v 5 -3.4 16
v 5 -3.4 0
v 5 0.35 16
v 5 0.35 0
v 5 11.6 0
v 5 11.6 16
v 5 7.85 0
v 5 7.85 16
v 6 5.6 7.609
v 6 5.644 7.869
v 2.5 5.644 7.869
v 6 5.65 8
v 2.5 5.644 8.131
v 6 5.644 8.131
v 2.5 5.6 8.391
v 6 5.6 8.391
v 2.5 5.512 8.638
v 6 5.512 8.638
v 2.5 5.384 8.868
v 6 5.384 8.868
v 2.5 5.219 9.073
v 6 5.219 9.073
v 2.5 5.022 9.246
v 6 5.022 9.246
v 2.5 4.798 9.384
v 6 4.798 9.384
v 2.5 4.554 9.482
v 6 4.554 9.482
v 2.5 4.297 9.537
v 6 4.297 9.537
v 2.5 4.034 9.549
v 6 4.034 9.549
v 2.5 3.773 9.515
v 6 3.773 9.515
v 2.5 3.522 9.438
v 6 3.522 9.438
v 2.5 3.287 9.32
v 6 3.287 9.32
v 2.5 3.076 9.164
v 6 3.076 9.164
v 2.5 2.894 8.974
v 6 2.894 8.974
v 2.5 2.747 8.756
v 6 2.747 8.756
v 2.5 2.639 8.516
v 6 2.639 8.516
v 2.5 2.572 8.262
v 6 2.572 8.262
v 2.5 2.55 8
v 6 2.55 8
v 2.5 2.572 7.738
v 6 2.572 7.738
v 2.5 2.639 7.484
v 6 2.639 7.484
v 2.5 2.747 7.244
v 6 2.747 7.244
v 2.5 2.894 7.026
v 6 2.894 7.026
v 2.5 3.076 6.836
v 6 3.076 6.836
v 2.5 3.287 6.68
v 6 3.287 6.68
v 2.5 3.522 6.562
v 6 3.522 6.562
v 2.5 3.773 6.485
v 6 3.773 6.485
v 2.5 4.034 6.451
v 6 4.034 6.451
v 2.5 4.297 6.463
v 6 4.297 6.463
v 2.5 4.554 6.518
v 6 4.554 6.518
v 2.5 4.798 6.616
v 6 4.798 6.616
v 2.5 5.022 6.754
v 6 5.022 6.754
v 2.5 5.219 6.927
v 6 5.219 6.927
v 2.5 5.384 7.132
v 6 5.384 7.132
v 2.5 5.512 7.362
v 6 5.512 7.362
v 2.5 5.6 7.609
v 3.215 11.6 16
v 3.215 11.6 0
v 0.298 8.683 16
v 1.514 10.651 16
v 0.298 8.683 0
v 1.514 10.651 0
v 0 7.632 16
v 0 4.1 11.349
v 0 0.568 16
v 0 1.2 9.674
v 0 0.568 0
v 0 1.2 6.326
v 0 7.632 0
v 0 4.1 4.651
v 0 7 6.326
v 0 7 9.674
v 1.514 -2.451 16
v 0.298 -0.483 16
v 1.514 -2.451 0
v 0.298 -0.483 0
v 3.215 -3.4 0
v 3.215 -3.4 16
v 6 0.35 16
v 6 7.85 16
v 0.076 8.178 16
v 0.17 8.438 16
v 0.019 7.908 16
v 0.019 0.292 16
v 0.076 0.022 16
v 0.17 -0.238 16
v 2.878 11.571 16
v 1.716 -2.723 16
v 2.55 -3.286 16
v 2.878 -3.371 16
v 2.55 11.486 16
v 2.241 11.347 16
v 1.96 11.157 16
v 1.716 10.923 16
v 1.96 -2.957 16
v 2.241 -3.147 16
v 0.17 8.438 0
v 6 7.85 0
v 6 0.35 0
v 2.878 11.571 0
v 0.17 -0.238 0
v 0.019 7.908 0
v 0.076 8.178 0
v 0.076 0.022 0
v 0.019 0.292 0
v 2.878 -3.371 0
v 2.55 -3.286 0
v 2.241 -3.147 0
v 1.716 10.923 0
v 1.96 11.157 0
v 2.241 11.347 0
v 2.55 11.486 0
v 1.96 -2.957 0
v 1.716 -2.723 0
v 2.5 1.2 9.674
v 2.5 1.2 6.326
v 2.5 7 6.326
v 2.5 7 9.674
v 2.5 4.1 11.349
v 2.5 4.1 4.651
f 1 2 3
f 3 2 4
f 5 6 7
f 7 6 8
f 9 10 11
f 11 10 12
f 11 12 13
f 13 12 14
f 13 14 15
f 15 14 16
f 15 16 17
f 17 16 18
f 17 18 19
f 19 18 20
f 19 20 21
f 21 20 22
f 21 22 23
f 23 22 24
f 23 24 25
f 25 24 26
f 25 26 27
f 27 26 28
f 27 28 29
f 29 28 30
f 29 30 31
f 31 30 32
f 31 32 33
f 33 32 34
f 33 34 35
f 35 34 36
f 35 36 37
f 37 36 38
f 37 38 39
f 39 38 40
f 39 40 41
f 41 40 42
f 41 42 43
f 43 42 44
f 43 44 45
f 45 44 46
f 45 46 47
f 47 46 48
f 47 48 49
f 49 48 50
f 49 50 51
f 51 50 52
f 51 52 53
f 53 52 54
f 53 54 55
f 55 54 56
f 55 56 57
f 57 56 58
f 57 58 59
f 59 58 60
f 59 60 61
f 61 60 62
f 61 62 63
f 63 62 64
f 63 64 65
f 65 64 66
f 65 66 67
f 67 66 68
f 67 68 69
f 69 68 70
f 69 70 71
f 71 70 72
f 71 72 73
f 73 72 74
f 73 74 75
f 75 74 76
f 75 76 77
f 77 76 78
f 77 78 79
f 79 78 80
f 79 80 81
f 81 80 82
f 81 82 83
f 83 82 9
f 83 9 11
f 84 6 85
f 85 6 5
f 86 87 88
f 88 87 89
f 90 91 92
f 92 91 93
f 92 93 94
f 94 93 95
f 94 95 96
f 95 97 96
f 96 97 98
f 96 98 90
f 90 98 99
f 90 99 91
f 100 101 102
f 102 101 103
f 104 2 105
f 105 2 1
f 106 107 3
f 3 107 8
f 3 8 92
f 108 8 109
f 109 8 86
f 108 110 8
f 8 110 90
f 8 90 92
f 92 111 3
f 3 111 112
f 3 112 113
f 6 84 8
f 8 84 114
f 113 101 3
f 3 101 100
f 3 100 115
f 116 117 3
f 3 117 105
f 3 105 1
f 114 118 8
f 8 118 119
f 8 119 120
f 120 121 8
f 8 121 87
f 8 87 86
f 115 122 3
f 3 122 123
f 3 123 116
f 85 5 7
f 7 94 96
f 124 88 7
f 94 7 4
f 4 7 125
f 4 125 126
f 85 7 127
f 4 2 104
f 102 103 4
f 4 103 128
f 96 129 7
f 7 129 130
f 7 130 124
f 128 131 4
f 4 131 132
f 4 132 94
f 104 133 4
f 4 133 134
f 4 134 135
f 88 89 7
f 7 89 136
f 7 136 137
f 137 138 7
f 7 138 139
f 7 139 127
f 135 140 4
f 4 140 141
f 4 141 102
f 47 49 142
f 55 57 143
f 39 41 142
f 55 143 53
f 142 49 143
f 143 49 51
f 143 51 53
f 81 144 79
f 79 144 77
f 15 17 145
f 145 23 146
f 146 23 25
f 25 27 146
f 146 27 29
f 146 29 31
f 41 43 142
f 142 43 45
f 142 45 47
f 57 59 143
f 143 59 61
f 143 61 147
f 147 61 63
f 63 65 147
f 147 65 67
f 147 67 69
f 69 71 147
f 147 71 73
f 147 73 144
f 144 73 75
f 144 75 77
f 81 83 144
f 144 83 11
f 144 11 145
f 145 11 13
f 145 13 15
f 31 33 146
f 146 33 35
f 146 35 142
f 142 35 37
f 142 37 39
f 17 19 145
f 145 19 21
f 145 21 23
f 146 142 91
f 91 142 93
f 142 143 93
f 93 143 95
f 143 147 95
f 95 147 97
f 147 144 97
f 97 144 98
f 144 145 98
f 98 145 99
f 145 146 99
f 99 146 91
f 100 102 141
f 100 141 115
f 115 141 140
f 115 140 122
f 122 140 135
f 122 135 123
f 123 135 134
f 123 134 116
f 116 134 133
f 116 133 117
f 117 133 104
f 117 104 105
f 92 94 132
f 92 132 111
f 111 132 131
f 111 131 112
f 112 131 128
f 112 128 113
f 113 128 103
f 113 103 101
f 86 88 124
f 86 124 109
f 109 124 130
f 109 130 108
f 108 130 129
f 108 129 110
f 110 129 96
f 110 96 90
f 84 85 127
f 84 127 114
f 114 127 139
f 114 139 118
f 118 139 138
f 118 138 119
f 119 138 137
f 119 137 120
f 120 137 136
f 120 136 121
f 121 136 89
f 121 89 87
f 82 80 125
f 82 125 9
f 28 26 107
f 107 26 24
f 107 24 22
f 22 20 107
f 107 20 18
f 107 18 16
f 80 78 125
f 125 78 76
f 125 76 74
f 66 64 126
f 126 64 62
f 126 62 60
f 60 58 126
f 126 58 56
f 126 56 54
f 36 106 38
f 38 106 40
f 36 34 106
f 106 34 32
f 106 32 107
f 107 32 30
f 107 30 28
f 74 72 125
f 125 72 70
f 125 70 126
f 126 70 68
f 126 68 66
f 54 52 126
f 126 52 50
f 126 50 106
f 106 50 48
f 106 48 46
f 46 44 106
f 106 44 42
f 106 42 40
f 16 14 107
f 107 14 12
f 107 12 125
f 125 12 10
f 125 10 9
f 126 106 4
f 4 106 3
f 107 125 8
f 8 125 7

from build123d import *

# Parameters (mm, degrees)
SALIENTE_EXTRUIR1_DEPTH = 16
CROQUIS2_R              = 1.55
CORTAR_EXTRUIR1_DEPTH   = 5
CORTAR_EXTRUIR2_DEPTH   = 2.5
REDONDEO1_R             = 2
CROQUIS4_W              = 16
CROQUIS4_H              = 7.5
CROQUIS4_R              = 1.55
SALIENTE_EXTRUIR3_DEPTH = 1


with BuildPart() as part:
    # Croquis1 → Saliente-Extruir1 (new body)
    with BuildSketch(Plane.XY):
        Polygon((2.1, -3.4), (5, -3.4), (5, 11.6), (2.1, 11.6), (0, 8.2), (0, 0), align=None)
    extrude(amount=SALIENTE_EXTRUIR1_DEPTH)

    # Croquis2 → Cortar-Extruir1 (cut)
    with BuildSketch(Plane.ZY):
        with Locations(Location((8, 4.1, 0), (0, 0, 270))):
            Circle(CROQUIS2_R)
    extrude(amount=-CORTAR_EXTRUIR1_DEPTH, mode=Mode.SUBTRACT)

    # Croquis3 → Cortar-Extruir2 (cut)
    with BuildSketch(Plane.ZY):
        Polygon((11.348631561, 4.1), (9.674315781, 7), (6.325684219, 7), (4.651368439, 4.1), (6.325684219, 1.2), (9.674315781, 1.2), align=None)
    extrude(amount=-CORTAR_EXTRUIR2_DEPTH, mode=Mode.SUBTRACT)

    # Redondeo1
    redondeo1_edges = [part.edges().sort_by_distance(p)[0] for p in [
        (2.1, -3.4, 8),
        (0, 0, 8),
        (0, 8.2, 8),
        (2.1, 11.6, 8),
    ]]
    fillet(redondeo1_edges, radius=REDONDEO1_R)

    # Croquis4 → Saliente-Extruir3 (add)
    with BuildSketch(Plane(origin=(5, 0, 0), x_dir=(0, 0, -1), z_dir=(1, 0, 0))):
        with Locations((-8, 4.1)):
            Rectangle(CROQUIS4_W, CROQUIS4_H)
        with Locations(Location((-8, 4.1, 0), (0, 0, 270))):
            Circle(CROQUIS4_R, mode=Mode.SUBTRACT)
    extrude(amount=SALIENTE_EXTRUIR3_DEPTH)


solid = part.part
